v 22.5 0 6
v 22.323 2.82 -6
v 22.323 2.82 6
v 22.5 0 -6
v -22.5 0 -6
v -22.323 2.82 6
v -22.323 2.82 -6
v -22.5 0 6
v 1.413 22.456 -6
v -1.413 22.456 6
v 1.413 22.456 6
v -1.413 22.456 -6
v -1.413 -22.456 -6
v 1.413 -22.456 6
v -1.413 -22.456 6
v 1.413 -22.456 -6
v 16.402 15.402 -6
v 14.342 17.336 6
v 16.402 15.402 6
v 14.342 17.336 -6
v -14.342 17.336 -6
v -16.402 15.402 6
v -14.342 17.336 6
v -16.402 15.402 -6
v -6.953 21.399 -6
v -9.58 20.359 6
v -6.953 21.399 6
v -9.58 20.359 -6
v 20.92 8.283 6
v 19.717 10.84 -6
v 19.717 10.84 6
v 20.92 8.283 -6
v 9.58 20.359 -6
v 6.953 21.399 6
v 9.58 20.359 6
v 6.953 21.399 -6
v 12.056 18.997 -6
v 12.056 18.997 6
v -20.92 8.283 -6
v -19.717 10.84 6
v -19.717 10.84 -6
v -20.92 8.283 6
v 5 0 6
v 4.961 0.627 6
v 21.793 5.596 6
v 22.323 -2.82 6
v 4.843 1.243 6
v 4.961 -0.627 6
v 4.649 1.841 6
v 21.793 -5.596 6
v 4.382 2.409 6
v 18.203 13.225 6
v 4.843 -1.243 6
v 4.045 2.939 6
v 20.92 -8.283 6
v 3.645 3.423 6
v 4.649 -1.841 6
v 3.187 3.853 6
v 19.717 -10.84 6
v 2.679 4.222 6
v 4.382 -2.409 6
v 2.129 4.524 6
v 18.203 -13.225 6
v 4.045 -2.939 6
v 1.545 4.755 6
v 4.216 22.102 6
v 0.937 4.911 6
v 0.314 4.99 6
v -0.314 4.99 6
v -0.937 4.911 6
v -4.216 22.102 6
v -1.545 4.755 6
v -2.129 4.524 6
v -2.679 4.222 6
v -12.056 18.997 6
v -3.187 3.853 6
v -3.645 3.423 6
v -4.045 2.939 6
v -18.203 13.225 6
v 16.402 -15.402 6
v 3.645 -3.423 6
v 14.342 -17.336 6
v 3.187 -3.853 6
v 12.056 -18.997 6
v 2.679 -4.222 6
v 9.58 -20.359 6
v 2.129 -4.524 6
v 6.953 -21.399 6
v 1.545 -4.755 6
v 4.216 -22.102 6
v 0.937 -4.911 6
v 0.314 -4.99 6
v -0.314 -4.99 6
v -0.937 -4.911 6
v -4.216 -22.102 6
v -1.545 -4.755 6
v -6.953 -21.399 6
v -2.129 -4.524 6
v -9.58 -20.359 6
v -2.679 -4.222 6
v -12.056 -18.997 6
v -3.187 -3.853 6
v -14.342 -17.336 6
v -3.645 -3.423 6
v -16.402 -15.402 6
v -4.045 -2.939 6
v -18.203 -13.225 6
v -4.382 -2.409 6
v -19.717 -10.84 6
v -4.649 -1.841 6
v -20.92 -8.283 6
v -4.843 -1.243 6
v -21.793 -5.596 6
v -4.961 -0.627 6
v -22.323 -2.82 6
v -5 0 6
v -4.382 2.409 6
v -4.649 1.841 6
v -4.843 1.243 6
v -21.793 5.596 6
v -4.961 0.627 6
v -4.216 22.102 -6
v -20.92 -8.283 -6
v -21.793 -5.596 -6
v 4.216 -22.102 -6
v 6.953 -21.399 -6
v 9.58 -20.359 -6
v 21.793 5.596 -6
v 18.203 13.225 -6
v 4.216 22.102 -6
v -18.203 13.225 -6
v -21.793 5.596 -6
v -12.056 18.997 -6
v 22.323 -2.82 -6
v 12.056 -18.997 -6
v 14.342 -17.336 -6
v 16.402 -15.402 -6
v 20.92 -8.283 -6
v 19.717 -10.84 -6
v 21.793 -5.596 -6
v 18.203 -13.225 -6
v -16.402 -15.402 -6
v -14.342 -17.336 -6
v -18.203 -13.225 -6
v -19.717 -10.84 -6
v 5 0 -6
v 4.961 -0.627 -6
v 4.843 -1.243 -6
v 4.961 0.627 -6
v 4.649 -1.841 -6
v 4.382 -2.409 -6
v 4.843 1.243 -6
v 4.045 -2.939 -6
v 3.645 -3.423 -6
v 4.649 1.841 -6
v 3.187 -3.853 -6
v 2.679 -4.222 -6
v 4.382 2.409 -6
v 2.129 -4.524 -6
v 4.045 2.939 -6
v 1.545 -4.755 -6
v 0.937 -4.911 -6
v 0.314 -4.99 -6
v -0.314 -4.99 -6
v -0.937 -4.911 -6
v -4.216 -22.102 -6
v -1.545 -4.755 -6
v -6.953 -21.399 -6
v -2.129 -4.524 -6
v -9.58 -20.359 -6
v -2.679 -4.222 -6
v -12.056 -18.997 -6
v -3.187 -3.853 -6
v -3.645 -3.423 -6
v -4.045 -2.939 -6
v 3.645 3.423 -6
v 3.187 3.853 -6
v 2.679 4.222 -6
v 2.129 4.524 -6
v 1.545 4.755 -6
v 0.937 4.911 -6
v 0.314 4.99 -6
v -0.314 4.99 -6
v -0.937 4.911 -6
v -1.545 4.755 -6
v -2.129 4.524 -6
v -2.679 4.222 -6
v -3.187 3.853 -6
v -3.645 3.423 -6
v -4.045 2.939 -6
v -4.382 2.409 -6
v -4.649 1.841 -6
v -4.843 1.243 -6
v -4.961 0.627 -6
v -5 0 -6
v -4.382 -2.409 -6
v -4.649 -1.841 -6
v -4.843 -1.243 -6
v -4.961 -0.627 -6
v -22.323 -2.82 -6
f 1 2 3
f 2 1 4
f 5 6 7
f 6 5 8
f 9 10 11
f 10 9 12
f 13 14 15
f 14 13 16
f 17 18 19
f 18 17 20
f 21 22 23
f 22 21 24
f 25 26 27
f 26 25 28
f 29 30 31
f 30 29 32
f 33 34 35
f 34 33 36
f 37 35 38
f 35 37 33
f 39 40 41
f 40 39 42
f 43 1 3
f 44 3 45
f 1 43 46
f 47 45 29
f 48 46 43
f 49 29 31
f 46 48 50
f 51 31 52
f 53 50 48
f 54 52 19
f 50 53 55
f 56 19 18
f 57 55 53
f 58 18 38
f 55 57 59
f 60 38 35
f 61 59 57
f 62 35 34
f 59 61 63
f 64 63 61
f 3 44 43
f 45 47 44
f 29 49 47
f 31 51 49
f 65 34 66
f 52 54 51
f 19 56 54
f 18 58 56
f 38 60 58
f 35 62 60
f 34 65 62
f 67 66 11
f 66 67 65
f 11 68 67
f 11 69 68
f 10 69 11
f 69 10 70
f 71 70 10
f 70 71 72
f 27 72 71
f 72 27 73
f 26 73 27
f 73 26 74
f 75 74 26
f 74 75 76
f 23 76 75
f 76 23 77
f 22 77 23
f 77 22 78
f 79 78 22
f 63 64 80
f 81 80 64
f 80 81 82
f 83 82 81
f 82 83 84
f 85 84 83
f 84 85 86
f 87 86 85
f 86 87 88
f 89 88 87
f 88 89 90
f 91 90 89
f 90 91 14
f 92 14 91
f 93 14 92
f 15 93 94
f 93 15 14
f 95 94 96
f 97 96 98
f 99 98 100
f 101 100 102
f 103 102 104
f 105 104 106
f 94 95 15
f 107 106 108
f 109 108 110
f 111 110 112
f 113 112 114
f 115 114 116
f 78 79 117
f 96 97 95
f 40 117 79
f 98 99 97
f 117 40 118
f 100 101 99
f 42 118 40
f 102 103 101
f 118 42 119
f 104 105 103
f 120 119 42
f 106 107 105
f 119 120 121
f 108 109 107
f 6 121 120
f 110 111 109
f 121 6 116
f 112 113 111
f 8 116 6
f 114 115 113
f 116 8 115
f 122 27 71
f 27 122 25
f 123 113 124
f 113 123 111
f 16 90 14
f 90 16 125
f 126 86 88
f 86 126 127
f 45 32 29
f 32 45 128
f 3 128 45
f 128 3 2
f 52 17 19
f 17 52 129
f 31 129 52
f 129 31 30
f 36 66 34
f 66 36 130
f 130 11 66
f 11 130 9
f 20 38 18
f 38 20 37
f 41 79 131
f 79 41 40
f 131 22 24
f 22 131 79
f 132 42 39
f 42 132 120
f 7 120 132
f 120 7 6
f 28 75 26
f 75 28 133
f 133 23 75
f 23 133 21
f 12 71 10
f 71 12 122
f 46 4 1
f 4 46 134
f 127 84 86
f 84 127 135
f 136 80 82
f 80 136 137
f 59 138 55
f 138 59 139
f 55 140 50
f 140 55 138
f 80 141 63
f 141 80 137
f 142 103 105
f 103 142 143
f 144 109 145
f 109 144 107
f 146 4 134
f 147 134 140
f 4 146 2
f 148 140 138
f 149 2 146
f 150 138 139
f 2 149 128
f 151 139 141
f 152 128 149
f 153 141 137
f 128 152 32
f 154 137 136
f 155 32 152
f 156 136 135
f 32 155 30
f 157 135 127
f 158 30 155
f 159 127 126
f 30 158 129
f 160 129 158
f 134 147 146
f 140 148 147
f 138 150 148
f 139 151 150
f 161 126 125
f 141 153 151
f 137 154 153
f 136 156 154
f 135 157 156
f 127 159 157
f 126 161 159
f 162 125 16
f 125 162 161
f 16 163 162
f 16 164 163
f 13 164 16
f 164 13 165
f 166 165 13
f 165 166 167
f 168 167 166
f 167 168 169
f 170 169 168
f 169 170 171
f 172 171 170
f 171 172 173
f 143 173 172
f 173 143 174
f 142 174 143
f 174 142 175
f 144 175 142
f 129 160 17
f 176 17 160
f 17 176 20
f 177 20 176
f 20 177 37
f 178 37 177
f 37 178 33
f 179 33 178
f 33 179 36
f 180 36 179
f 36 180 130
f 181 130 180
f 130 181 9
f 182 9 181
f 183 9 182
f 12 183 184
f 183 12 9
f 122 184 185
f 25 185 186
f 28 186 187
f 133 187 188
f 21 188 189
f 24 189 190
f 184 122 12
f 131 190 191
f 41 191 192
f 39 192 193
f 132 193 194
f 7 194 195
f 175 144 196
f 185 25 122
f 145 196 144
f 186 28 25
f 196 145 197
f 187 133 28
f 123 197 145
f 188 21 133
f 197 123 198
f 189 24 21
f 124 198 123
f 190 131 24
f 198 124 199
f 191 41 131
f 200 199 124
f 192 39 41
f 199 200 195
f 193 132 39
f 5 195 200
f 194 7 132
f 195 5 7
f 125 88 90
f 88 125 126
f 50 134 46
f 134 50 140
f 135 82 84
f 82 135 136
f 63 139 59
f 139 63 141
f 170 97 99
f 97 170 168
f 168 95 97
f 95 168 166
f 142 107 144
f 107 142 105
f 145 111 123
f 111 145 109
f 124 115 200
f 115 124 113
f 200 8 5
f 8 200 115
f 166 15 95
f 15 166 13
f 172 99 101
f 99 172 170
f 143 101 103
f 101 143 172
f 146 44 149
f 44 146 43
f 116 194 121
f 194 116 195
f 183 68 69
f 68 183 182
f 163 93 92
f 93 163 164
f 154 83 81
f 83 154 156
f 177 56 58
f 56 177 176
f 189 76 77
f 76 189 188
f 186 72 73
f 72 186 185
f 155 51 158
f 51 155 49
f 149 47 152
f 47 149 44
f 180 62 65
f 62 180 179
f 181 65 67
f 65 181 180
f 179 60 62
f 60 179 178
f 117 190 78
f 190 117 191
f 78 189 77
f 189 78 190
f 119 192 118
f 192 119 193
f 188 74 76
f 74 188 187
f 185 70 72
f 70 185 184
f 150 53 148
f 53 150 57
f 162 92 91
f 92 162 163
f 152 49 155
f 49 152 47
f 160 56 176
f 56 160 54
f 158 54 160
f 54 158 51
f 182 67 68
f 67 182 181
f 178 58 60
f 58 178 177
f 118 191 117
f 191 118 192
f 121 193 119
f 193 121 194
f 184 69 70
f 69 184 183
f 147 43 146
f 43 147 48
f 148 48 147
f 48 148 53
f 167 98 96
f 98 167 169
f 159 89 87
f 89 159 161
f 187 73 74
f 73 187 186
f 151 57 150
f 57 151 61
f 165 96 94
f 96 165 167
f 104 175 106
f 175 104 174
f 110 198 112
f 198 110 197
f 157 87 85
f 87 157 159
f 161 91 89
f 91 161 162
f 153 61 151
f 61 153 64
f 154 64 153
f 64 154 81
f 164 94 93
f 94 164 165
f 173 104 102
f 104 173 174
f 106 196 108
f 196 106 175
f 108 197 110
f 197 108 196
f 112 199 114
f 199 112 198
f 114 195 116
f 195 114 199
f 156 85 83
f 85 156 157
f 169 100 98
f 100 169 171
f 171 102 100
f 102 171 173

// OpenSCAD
$fn = 50;


difference() {
	union() {
		translate(v = [0, 0, -6.0000000000]) {
			cylinder(h = 12, r = 22.5000000000);
		}
	}
	union() {
		translate(v = [0, 0, -100.0000000000]) {
			cylinder(h = 200, r = 5);
		}
	}
}
